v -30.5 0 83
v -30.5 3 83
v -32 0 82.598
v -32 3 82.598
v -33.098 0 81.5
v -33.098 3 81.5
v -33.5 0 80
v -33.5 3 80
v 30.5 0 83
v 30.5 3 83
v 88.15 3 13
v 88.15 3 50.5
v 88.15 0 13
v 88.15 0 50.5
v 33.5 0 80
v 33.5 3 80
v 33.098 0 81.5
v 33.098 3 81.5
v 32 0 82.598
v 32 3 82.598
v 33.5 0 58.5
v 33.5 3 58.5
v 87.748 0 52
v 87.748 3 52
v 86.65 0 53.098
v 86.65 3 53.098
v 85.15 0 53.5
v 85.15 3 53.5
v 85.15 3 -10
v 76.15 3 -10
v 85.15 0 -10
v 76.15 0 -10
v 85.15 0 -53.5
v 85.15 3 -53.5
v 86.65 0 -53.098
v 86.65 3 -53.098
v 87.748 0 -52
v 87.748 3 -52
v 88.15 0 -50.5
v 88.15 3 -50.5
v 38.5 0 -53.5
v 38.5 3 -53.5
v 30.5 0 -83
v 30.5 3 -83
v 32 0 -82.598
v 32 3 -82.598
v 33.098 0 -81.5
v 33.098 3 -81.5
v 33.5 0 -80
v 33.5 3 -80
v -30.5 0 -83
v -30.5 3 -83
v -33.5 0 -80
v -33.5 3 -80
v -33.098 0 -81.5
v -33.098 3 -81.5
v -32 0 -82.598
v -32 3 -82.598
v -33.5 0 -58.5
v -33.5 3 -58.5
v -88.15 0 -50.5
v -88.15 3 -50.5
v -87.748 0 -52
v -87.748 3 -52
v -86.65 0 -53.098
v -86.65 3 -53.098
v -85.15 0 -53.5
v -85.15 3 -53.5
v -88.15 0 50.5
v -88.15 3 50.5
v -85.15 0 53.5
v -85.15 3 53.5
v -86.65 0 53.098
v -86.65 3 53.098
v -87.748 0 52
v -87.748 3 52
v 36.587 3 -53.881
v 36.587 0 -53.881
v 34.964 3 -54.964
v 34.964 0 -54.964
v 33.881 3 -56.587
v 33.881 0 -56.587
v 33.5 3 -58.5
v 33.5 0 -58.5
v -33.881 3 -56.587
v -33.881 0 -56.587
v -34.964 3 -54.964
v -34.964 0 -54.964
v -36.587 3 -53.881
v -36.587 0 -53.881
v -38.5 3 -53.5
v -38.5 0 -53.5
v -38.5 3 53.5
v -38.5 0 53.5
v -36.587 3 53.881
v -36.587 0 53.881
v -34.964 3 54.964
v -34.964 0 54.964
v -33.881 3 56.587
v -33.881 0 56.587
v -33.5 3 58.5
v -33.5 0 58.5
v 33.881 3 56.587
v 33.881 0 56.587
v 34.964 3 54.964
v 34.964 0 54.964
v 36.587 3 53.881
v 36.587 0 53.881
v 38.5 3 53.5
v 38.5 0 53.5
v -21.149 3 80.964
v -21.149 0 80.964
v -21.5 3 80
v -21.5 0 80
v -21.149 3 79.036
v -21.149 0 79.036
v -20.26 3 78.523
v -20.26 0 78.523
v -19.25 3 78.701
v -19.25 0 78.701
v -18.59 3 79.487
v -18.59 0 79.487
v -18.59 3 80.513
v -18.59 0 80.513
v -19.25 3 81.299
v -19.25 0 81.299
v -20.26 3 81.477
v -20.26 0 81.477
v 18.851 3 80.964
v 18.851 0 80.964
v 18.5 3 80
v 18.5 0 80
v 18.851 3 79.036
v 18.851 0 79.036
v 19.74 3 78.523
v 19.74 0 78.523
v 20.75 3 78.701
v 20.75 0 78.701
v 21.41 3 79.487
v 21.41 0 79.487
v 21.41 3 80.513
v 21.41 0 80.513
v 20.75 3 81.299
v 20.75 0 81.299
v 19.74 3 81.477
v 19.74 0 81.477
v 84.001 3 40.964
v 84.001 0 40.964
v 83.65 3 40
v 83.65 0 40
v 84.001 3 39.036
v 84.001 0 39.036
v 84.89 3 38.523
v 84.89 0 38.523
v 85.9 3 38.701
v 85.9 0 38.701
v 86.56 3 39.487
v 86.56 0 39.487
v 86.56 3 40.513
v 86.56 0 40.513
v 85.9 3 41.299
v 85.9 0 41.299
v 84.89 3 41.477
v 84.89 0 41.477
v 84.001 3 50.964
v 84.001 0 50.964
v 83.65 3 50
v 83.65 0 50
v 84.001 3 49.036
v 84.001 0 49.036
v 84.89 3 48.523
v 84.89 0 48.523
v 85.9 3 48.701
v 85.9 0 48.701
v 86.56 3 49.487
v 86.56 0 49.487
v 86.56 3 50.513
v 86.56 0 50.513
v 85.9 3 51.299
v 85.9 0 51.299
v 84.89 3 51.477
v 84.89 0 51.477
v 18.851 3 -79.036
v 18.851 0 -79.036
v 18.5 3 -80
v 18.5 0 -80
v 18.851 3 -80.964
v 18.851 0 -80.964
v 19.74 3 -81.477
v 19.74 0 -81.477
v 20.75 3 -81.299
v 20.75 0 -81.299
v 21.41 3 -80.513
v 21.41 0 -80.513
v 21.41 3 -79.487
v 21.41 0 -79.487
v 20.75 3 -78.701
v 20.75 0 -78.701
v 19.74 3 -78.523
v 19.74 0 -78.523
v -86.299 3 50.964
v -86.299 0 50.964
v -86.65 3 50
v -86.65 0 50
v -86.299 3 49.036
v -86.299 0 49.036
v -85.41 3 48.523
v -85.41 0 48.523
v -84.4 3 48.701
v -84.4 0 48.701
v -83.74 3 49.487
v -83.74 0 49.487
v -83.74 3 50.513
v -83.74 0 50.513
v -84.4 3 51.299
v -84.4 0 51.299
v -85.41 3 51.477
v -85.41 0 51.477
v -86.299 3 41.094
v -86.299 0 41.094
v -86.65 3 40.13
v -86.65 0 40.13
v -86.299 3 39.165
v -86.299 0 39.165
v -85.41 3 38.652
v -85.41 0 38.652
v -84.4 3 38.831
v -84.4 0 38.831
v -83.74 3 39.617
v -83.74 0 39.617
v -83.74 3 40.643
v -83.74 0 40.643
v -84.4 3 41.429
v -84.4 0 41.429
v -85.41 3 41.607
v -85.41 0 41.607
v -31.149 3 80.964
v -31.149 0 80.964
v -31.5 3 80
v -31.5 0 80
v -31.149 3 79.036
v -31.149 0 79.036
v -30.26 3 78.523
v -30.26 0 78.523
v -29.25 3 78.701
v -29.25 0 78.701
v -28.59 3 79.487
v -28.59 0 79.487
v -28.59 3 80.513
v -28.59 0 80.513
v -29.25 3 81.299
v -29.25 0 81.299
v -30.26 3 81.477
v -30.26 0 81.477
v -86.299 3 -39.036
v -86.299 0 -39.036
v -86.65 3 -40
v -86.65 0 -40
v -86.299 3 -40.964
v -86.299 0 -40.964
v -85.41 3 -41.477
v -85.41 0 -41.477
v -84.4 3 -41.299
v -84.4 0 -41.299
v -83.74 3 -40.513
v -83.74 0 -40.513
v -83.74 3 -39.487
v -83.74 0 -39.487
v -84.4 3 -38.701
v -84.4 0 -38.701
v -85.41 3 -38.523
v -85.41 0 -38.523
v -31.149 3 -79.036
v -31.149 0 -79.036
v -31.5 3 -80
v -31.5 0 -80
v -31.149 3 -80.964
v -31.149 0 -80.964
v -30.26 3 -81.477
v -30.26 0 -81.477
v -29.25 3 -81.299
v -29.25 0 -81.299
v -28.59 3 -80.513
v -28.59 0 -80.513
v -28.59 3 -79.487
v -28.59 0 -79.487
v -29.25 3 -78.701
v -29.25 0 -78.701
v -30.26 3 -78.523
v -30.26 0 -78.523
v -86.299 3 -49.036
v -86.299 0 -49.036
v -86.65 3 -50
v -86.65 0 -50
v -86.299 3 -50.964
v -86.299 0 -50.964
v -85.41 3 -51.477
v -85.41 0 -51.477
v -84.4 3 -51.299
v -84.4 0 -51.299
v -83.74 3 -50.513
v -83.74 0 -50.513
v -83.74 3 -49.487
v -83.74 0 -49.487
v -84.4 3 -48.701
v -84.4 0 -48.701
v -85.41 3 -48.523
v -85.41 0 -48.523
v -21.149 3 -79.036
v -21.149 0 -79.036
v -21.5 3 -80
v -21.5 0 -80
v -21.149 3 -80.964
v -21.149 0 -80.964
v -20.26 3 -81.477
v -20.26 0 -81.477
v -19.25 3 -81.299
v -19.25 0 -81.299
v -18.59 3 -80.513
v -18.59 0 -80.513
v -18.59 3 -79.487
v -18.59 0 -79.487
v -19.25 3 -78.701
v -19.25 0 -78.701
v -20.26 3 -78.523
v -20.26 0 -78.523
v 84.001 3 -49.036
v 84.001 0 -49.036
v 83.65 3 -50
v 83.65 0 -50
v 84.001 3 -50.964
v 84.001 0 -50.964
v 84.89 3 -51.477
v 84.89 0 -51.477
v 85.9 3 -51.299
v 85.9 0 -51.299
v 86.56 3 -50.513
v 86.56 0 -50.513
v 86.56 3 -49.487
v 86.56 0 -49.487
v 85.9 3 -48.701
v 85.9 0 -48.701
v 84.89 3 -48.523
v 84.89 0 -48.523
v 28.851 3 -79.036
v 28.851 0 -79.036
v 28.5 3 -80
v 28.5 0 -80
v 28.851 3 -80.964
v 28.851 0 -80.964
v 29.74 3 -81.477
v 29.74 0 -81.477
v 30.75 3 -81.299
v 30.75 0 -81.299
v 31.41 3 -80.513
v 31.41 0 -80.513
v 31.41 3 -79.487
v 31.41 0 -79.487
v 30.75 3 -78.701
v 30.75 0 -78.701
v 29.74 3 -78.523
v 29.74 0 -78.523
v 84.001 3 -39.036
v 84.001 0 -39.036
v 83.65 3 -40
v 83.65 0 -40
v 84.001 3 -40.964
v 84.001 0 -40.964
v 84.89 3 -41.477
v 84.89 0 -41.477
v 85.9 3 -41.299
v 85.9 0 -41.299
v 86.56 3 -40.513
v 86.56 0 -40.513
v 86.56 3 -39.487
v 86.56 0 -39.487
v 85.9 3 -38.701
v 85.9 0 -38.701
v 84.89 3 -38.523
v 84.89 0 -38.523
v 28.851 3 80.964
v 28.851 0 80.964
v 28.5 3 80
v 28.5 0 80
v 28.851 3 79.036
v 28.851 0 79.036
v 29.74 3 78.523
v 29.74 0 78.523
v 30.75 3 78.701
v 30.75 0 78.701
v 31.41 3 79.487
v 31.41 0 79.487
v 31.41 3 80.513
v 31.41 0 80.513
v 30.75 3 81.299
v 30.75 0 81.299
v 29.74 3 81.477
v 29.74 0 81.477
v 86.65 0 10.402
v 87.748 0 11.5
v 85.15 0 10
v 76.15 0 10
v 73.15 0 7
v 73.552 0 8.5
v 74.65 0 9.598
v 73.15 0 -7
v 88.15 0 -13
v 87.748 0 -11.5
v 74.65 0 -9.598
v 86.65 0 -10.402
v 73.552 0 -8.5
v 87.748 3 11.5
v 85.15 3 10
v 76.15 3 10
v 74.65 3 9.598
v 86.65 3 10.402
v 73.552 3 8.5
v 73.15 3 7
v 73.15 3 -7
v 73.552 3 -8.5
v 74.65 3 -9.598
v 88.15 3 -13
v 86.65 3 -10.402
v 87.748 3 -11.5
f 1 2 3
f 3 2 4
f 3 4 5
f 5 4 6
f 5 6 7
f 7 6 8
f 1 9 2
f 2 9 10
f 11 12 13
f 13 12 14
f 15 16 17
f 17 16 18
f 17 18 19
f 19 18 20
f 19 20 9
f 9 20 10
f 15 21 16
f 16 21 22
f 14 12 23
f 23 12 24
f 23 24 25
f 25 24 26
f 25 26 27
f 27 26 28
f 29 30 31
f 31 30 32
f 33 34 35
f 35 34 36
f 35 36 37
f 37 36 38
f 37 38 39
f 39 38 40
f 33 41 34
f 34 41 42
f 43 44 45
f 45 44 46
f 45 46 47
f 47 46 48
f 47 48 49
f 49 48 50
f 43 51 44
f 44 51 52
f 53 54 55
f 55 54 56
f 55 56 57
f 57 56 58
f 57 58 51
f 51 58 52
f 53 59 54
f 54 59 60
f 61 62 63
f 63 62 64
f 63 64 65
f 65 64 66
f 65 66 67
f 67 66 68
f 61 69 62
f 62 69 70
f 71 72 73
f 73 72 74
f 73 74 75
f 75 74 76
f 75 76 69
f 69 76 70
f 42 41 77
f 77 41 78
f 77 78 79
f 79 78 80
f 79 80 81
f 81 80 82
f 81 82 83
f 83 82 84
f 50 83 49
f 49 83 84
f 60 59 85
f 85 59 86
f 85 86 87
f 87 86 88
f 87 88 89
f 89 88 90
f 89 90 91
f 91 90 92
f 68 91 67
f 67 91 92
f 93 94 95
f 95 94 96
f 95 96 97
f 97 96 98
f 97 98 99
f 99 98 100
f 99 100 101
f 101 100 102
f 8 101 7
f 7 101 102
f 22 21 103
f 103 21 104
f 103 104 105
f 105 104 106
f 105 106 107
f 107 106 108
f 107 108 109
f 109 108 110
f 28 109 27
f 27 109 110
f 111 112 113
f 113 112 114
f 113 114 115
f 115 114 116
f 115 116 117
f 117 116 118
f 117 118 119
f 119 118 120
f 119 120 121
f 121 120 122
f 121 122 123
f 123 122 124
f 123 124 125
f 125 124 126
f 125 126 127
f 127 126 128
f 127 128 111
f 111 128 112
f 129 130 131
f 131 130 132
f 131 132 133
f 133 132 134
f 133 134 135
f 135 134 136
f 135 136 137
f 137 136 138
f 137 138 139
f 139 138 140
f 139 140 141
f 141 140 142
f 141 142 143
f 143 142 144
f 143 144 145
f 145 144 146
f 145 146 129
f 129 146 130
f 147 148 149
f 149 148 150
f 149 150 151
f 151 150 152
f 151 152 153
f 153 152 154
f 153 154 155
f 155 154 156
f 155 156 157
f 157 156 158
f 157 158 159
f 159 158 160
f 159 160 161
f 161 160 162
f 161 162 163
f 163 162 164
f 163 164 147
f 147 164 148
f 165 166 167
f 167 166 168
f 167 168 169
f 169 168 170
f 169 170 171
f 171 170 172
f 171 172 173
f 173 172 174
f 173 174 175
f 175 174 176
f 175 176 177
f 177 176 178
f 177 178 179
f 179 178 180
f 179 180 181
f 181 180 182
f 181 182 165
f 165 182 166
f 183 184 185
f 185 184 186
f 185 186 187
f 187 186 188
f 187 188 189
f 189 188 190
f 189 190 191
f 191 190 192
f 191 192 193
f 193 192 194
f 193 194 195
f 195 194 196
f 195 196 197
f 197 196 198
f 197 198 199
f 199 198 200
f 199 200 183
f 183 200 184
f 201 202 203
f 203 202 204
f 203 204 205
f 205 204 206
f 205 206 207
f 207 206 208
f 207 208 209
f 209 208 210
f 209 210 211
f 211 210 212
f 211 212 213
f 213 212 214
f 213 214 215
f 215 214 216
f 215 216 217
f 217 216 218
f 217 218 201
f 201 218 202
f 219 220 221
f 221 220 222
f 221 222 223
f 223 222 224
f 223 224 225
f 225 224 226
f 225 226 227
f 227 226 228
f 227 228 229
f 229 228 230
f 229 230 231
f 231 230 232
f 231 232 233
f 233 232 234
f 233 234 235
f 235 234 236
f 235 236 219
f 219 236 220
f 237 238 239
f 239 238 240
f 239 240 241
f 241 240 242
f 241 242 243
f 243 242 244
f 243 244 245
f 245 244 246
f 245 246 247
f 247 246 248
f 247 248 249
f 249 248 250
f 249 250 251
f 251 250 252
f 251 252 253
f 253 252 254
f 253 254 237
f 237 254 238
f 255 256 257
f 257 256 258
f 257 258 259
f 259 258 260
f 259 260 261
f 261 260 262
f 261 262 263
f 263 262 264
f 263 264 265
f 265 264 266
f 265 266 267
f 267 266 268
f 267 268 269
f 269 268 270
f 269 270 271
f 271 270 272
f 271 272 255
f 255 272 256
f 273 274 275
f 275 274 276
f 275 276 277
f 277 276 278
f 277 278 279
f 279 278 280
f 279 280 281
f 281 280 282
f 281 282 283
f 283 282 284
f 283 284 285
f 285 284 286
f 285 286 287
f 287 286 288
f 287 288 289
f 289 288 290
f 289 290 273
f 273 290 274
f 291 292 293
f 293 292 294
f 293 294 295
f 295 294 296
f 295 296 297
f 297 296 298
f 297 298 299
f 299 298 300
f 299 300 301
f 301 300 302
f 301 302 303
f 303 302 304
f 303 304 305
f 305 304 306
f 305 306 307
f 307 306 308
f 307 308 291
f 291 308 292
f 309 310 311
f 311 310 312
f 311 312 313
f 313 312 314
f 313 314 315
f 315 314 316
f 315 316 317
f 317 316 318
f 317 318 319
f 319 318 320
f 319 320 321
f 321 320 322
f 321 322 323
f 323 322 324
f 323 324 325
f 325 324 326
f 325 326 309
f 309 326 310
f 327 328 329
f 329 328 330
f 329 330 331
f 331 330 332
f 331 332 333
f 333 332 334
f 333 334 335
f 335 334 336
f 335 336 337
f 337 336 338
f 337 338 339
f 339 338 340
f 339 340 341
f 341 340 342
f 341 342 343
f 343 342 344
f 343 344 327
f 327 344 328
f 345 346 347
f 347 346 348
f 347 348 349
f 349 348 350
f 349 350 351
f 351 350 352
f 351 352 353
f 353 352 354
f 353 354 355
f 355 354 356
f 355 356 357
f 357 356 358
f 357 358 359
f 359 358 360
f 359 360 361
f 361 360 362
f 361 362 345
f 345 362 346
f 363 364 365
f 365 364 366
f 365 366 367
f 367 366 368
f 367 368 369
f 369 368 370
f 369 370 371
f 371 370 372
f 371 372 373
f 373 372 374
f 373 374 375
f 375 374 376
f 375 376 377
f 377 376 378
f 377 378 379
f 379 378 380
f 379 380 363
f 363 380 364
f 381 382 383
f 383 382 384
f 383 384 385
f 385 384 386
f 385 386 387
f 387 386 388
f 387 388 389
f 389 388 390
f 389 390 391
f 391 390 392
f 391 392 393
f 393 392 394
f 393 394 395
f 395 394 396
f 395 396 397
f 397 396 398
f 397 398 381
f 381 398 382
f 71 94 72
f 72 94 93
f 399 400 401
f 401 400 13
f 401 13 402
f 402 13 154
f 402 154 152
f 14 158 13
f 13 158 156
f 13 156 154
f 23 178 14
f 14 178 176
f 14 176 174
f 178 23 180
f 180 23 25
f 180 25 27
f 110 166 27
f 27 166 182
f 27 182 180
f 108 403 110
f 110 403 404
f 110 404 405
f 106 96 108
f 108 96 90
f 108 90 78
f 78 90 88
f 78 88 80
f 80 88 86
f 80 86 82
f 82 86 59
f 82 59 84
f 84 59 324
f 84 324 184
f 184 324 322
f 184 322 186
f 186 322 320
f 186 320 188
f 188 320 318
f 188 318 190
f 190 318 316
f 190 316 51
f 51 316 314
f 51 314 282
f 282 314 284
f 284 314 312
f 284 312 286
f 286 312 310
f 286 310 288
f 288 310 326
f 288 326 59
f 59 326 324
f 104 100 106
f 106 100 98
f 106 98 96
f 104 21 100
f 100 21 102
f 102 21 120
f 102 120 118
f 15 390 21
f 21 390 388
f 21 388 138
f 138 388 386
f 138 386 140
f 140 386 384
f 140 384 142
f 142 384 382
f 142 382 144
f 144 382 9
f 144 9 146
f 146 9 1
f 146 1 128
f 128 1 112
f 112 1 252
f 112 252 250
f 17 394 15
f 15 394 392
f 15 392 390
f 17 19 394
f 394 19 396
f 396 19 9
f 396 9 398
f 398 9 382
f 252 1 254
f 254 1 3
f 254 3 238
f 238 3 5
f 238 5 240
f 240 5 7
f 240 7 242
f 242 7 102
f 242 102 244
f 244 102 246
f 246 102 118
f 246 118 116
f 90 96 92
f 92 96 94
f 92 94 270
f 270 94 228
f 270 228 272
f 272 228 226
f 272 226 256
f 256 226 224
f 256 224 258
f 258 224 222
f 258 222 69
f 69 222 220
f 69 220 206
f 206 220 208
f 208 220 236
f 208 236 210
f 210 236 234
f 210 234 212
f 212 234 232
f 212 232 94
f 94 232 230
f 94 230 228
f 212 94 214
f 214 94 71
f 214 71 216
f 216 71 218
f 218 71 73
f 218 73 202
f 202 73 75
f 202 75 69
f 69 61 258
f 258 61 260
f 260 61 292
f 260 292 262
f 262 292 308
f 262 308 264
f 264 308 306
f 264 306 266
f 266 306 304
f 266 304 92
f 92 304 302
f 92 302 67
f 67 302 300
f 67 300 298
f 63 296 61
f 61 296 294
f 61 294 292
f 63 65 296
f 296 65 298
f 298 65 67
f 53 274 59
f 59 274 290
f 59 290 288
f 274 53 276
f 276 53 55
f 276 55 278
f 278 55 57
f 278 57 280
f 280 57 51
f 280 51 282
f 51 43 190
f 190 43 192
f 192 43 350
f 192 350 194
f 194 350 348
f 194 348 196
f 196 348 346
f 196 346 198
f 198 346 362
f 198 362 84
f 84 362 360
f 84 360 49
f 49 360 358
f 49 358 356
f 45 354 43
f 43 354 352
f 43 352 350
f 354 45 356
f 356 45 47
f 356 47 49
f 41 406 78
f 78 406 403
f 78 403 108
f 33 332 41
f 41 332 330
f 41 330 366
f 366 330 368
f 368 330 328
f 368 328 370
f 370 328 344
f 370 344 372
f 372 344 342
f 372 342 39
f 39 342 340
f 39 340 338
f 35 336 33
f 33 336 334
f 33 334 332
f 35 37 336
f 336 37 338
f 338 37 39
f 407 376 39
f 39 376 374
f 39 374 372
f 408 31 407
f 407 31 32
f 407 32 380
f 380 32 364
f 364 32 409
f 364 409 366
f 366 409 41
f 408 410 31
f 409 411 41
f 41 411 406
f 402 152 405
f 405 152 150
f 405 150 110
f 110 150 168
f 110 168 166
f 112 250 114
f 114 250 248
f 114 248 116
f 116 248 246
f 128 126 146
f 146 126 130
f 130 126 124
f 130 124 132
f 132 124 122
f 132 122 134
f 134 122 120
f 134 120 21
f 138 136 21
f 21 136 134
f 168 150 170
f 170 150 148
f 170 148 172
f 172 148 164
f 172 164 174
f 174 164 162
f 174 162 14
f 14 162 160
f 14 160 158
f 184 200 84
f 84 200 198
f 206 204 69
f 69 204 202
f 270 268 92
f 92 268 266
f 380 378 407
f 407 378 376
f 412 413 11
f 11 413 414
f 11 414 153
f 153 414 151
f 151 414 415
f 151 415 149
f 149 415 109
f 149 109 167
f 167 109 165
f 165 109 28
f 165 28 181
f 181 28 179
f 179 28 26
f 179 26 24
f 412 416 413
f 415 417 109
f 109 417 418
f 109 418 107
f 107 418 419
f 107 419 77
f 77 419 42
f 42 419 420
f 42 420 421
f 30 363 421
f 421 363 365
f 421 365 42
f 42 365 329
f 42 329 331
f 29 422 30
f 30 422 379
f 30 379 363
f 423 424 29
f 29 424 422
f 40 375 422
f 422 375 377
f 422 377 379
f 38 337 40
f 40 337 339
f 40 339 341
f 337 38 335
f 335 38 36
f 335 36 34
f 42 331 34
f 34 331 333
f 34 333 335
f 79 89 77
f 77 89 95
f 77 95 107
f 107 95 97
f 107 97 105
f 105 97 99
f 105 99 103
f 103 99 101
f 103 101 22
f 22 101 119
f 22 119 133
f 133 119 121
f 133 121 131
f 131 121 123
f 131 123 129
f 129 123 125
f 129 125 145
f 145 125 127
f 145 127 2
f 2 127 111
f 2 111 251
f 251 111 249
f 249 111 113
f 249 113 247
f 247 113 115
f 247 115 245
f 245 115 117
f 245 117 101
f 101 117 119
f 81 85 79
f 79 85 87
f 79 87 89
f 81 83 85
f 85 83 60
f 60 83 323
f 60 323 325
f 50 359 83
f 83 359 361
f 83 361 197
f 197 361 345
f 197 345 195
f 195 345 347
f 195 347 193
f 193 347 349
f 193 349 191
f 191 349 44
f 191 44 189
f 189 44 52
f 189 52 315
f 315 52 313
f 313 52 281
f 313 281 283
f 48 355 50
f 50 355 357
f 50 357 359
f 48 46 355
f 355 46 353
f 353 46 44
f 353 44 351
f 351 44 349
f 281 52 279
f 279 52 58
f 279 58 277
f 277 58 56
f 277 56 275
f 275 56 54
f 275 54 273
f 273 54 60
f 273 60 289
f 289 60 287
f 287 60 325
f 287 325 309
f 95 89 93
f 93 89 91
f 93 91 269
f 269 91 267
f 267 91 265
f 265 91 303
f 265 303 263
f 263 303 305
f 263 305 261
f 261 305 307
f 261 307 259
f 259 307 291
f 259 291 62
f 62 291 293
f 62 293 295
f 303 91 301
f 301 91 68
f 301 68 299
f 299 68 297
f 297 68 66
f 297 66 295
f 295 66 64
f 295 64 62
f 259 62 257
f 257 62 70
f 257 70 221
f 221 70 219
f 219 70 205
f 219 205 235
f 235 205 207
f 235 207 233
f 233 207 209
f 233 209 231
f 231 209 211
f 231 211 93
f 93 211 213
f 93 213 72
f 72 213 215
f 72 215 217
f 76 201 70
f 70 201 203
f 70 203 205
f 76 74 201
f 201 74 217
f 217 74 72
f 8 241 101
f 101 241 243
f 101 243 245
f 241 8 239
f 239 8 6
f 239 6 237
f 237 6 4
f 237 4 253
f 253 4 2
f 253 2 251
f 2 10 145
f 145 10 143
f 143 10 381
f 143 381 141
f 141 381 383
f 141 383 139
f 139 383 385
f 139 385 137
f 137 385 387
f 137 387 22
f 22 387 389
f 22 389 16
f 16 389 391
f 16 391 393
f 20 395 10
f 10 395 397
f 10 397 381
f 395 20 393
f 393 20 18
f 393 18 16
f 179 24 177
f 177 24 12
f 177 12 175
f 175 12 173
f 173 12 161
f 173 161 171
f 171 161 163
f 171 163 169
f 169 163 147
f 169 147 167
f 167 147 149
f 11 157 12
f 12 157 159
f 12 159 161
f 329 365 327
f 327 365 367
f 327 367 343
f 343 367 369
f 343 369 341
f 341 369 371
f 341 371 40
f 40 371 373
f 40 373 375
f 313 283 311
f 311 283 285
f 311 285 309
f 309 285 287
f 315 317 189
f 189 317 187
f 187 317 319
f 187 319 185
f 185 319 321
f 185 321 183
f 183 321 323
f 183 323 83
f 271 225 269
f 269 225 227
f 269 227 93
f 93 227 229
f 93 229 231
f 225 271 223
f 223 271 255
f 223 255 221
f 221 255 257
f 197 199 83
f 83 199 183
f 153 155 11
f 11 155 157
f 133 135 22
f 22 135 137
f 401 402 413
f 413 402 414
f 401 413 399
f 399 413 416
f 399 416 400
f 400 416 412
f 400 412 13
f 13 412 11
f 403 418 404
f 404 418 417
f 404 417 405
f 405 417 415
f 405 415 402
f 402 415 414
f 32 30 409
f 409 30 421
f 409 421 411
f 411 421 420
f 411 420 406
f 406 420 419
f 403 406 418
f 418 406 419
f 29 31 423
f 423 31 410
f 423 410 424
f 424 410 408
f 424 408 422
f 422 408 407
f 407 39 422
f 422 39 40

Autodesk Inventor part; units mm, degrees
ref_plane "YZ Plane" through (0, 0, 0) normal (1, 0, 0) x (0, 1, 0)
ref_plane "XZ Plane" through (0, 0, 0) normal (0, 1, 0) x (-1, 0, 0)
ref_plane "XY Plane" through (0, 0, 0) normal (0, 0, 1) x (1, 0, 0)
sketch "Sketch1" plane through (0, 0, 0) normal (0, 1, 0) x (-1, 0, 0)
  line L0 (-20, 80) -> (20, 80)
  line L1 (20, 80) -> (20, -80)
  line L2 (20, -80) -> (-20, -80)
  line L3 (-20, -80) -> (-20, 80)
  line L4 (-20, 80) -> (20, -80) construction
  line L5 (20, 80) -> (-20, -80) construction
  line L6 (20, 80) -> (30, 80)
  line L7 (30, 80) -> (30, -80)
  line L8 (30, -80) -> (20, -80)
  line L9 (20, -80) -> (20, 80)
  line L10 (-20, 80) -> (-30, 80)
  line L11 (-30, 80) -> (-30, -80)
  line L12 (-30, -80) -> (-20, -80)
  line L13 (-20, -80) -> (-20, 80)
  circle A0 centre (30, 80) radius 1.5
  circle A1 centre (20, 80) radius 1.5
  circle A2 centre (-20, 80) radius 1.5
  circle A3 centre (-30, 80) radius 1.5
  circle A4 centre (30, -80) radius 1.5
  circle A5 centre (-30, -80) radius 1.5
  line L14 (-85.15, 40) -> (85.15, 40)
  line L15 (85.15, 40) -> (85.15, -40)
  line L16 (85.15, -40) -> (-85.15, -40)
  line L17 (-85.15, -40) -> (-85.15, 40)
  line L18 (-85.15, 40) -> (85.15, -40) construction
  line L19 (85.15, 40) -> (-85.15, -40) construction
  line L20 (85.15, 40) -> (-85.15, 40)
  line L21 (-85.15, 40) -> (-85.15, 50)
  line L22 (-85.15, 50) -> (85.15, 50)
  line L23 (85.15, 50) -> (85.15, 40)
  line L24 (85.15, -40) -> (-85.15, -40)
  line L25 (-85.15, -40) -> (-85.15, -50)
  line L26 (-85.15, -50) -> (85.15, -50)
  line L27 (85.15, -50) -> (85.15, -40)
  circle A6 centre (-85.15, 50) radius 1.5
  circle A7 centre (-85.15, 40) radius 1.5
  circle A8 centre (-85.15, -40) radius 1.5
  circle A9 centre (-85.15, -50) radius 1.5
  circle A10 centre (-20, -80) radius 1.5
  circle A11 centre (20, -80) radius 1.5
  circle A12 centre (85.15, -40) radius 1.5
  circle A13 centre (85.15, -50) radius 1.5
  circle A14 centre (85.15, 50) radius 1.5
  circle A15 centre (85.15, 40.1297) radius 1.5
  line L28 (85.15, 50) -> (-85.15, 50)
  line L29 (-85.15, 50) -> (-85.15, 53.5)
  line L30 (-85.15, 53.5) -> (85.15, 53.5)
  line L31 (85.15, 53.5) -> (85.15, 50)
  line L32 (-30, 80) -> (-33.5, 80)
  line L33 (-33.5, 80) -> (-33.5, -80)
  line L34 (-33.5, -80) -> (-30, -80)
  line L35 (-30, -80) -> (-30, 80)
  line L36 (85.15, -50) -> (-85.15, -50)
  line L37 (-85.15, -50) -> (-85.15, -53.5)
  line L38 (-85.15, -53.5) -> (85.15, -53.5)
  line L39 (85.15, -53.5) -> (85.15, -50)
  line L40 (30, -80) -> (-33.5, -80)
  line L41 (-33.5, -80) -> (-33.5, -83)
  line L42 (-33.5, -83) -> (30, -83)
  line L43 (30, -83) -> (30, -80)
  line L44 (30, 80) -> (33.5, 80)
  line L45 (33.5, 80) -> (33.5, -83)
  line L46 (33.5, -83) -> (30, -83)
  line L47 (30, -83) -> (30, 80)
  line L48 (33.5, 80) -> (-33.5, 80)
  line L49 (-33.5, 80) -> (-33.5, 83)
  line L50 (-33.5, 83) -> (33.5, 83)
  line L51 (33.5, 83) -> (33.5, 80)
  line L52 (85.15, 53.5) -> (88.15, 53.5)
  line L53 (88.15, 53.5) -> (88.15, -53.5)
  line L54 (88.15, -53.5) -> (85.15, -53.5)
  line L55 (85.15, -53.5) -> (85.15, 53.5)
  line L56 (-85.15, 53.5) -> (-88.15, 53.5)
  line L57 (-88.15, 53.5) -> (-88.15, -53.5)
  line L58 (-88.15, -53.5) -> (-85.15, -53.5)
  line L59 (-85.15, -53.5) -> (-85.15, 53.5)
  point P0 (0, 0)
  point P1 (-33.5, 53.5)
  point P2 (-33.5, -53.5)
  point P3 (33.5, -53.5)
  point P4 (33.5, 53.5)
  point P5 (-18.5, 80)
  point P6 (-20, 78.5)
  point P7 (20, 78.5)
  point P8 (18.5, 80)
  dimension "d0" = 40
  dimension "d1" = 160
  dimension "d2" = 10
  dimension "d3" = 10
  dimension "d4" = 3
  dimension "d5" = 3
  dimension "d6" = 3
  dimension "d7" = 3
  dimension "d8" = 3
  dimension "d9" = 3
  dimension "d10" = 170.3
  dimension "d11" = 80
  dimension "d12" = 10
  dimension "d13" = 10
  dimension "d14" = 3
  dimension "d15" = 3
  dimension "d16" = 3
  dimension "d17" = 3
  dimension "d18" = 3
  dimension "d19" = 3
  dimension "d20" = 3
  dimension "d21" = 3
  dimension "d22" = 3
  dimension "d23" = 3
  dimension "d24" = 3.5
  dimension "d25" = 3.5
  dimension "d26" = 3.5
  dimension "d27" = 3
  dimension "d28" = 3.5
  dimension "d29" = 3
  dimension "d30" = 3
  dimension "d31" = 3
extrude "Extrusion1" add sketch "Sketch1" along normal blind 3 contours A2 L10 A3 L32 L49 L50 L51 L44 A0 L6 A1 L0 | L0 A1 L1 L30 L3 A2 | L3 L30 L11 A3 L10 A2 | L30 L1 L22 L3 | L3 L22 L11 L30 | L6 A0 L7 L30 L1 A1 | L22 L1 L14 L3 | L3 L14 L11 L22 | L30 L33 L32 A3 L11 | L11 L22 L33 L30 | L30 L7 L22 L1 | L14 L1 L16 L3 | L3 L16 L11 L14 | L11 L14 L33 L22 | L22 L7 L14 L1 | L33 L22 A6 L29 L30 | L30 L45 L22 L7 | L7 A0 L44 L45 L30 | L16 L1 L26 L3 | L3 L26 L11 L16 | L11 L16 L33 L14 | L14 L7 L16 L1 | L33 L14 A7 L21 A6 L22 | L22 L45 L14 L7 | L29 A6 L21 A7 L17 A8 L25 A9 L37 L58 L57 L56 | L30 L31 A14 L22 L45 | L26 L1 L38 L3 | L3 L38 L11 L26 | L16 L7 L26 L1 | L11 L26 L33 L16 | L33 L16 A8 L17 A7 L14 | L14 L45 L16 L7 | L22 A14 L23 A15 L14 L45 | L52 L53 L54 L39 A13 L27 A12 L15 A15 L23 A14 L31 | L38 L1 A11 L2 A10 L3 | L3 A10 L12 A5 L11 L38 | L11 L38 L33 L26 | L26 L7 L38 L1 | L16 L45 L26 L7 | L33 L26 A9 L25 A8 L16 | L14 A15 L15 A12 L16 L45 | L11 A5 L34 L33 L38 | L38 L7 A4 L8 A11 L1 | L33 L38 L37 A9 L26 | L26 L45 L38 L7 | L16 A12 L27 A13 L26 L45 | L2 A11 L8 A4 L43 L42 L41 L34 A5 L12 A10 | L38 L45 L46 L43 A4 L7 | L26 A13 L39 L38 L45
fillet "Fillet1" radius 5 4 edges at (33.5, 1.5, 53.5) (-33.5, 1.5, 53.5) (-33.5, 1.5, -53.5) (33.5, 1.5, -53.5)
fillet "Fillet2" radius 3 8 edges at (-88.15, 1.5, 53.5) (-88.15, 1.5, -53.5) (-33.5, 1.5, -83) (33.5, 1.5, -83) (88.15, 1.5, -53.5) (88.15, 1.5, 53.5) (33.5, 1.5, 83) (-33.5, 1.5, 83)
sketch "Sketch2" plane through (0, 3, 0) normal (0, 1, 0) x (1, 0, 0)
  line L0 (88.15, -50.5) -> (88.15, 50.5) projected
  line L1 (88.15, 0) -> (73.15, 0)
  line L2 (73.15, 0) -> (73.15, -10)
  line L3 (73.15, -10) -> (88.15, -10)
  line L4 (88.15, -10) -> (88.15, 0)
  line L5 (73.15, 0) -> (88.15, 0)
  line L6 (88.15, 0) -> (88.15, 10)
  line L7 (88.15, 10) -> (73.15, 10)
  line L8 (73.15, 10) -> (73.15, 0)
  point P0 (0, 0)
  dimension "d36" = 15
  dimension "d37" = 10
  dimension "d38" = 10
extrude "Extrusion2" cut sketch "Sketch2" against normal blind 3
fillet "Fillet3" radius 3 4 edges at (73.15, 1.5, -10) (88.15, 1.5, -10) (73.15, 1.5, 10) (88.15, 1.5, 10)
properties part number "cover"
